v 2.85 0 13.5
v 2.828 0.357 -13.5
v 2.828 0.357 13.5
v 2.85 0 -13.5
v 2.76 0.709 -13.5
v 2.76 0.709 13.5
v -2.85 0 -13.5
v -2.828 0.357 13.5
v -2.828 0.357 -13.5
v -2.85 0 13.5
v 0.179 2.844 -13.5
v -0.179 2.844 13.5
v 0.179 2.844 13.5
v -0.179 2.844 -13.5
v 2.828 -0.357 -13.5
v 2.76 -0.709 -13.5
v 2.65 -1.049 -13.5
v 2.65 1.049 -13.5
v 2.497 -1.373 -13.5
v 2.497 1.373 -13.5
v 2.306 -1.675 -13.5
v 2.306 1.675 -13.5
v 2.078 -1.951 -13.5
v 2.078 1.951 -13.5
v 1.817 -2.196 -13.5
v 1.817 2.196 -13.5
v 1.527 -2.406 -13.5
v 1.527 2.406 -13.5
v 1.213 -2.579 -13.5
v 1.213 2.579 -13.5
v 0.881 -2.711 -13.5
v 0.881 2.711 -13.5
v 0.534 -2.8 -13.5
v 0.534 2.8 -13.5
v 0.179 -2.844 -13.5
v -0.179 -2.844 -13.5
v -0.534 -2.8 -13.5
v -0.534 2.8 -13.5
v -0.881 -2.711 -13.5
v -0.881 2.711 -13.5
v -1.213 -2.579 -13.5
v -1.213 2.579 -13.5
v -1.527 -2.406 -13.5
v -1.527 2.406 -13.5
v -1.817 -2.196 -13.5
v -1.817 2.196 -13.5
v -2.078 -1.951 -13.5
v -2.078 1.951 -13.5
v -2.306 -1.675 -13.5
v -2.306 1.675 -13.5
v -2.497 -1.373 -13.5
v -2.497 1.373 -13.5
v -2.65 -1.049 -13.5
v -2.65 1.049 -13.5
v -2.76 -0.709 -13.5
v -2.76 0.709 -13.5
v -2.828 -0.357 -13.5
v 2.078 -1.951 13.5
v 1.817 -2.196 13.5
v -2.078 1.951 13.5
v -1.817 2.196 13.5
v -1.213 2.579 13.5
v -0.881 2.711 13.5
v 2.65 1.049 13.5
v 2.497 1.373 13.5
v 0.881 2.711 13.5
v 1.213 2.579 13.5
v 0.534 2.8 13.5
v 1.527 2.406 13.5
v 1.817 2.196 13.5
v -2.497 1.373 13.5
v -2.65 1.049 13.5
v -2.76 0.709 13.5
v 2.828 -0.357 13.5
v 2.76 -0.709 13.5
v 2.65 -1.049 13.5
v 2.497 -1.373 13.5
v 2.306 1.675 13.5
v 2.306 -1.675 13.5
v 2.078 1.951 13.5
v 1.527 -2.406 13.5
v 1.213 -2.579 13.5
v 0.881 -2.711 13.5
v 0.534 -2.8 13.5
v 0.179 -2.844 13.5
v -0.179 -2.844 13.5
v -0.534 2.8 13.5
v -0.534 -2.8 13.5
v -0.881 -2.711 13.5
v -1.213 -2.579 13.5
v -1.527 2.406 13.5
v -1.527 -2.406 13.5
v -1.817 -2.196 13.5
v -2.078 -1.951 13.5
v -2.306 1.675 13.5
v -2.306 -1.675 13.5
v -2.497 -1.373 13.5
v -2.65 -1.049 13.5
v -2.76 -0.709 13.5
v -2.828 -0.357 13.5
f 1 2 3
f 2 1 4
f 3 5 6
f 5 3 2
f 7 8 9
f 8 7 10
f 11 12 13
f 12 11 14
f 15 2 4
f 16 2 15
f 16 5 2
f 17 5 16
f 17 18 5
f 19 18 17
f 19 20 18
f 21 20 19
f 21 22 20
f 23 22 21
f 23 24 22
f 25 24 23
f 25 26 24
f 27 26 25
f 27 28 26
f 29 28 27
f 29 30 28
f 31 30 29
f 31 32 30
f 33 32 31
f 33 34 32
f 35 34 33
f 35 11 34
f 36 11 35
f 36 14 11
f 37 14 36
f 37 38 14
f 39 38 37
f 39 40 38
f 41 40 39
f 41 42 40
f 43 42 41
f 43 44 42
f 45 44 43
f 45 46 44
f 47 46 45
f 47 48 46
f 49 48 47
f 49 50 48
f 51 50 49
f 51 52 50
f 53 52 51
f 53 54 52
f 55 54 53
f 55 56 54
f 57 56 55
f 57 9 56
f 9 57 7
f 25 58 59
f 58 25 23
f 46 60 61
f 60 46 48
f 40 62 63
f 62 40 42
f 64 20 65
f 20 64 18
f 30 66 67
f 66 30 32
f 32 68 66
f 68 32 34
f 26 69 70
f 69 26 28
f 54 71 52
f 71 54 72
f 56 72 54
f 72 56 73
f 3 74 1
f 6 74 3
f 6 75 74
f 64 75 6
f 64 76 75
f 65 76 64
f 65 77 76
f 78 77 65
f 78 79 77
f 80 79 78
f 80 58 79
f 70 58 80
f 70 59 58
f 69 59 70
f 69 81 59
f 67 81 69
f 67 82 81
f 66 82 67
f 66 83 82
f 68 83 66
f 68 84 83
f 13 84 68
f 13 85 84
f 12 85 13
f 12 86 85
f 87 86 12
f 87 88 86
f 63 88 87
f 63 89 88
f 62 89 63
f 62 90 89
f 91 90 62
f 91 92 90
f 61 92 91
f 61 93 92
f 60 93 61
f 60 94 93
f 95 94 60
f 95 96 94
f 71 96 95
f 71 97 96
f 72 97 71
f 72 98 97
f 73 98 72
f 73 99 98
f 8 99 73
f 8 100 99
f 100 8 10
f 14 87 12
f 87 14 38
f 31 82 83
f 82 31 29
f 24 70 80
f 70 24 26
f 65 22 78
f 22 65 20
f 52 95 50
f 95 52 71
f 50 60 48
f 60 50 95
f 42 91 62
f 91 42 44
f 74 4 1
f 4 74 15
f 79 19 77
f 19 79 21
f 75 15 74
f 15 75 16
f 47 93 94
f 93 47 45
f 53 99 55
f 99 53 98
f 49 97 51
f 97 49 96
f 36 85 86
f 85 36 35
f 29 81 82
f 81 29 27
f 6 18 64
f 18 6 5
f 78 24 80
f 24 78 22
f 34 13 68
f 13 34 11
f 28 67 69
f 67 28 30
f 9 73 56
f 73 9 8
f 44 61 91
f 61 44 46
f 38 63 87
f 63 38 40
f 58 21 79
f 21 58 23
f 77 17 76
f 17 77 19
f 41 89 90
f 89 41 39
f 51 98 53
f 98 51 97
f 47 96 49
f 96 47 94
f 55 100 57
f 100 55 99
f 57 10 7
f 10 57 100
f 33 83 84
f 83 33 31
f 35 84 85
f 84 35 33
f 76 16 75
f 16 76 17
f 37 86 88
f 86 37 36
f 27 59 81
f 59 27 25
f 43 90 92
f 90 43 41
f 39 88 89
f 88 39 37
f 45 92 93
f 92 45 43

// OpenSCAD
$fn = 50;


difference() {
	union() {
		translate(v = [0, 0, -13.5000000000]) {
			cylinder(h = 27, r = 2.8500000000);
		}
	}
	union() {
		translate(v = [0, 0, -100.0000000000]) {
			cylinder(h = 200, r = 0);
		}
	}
}
